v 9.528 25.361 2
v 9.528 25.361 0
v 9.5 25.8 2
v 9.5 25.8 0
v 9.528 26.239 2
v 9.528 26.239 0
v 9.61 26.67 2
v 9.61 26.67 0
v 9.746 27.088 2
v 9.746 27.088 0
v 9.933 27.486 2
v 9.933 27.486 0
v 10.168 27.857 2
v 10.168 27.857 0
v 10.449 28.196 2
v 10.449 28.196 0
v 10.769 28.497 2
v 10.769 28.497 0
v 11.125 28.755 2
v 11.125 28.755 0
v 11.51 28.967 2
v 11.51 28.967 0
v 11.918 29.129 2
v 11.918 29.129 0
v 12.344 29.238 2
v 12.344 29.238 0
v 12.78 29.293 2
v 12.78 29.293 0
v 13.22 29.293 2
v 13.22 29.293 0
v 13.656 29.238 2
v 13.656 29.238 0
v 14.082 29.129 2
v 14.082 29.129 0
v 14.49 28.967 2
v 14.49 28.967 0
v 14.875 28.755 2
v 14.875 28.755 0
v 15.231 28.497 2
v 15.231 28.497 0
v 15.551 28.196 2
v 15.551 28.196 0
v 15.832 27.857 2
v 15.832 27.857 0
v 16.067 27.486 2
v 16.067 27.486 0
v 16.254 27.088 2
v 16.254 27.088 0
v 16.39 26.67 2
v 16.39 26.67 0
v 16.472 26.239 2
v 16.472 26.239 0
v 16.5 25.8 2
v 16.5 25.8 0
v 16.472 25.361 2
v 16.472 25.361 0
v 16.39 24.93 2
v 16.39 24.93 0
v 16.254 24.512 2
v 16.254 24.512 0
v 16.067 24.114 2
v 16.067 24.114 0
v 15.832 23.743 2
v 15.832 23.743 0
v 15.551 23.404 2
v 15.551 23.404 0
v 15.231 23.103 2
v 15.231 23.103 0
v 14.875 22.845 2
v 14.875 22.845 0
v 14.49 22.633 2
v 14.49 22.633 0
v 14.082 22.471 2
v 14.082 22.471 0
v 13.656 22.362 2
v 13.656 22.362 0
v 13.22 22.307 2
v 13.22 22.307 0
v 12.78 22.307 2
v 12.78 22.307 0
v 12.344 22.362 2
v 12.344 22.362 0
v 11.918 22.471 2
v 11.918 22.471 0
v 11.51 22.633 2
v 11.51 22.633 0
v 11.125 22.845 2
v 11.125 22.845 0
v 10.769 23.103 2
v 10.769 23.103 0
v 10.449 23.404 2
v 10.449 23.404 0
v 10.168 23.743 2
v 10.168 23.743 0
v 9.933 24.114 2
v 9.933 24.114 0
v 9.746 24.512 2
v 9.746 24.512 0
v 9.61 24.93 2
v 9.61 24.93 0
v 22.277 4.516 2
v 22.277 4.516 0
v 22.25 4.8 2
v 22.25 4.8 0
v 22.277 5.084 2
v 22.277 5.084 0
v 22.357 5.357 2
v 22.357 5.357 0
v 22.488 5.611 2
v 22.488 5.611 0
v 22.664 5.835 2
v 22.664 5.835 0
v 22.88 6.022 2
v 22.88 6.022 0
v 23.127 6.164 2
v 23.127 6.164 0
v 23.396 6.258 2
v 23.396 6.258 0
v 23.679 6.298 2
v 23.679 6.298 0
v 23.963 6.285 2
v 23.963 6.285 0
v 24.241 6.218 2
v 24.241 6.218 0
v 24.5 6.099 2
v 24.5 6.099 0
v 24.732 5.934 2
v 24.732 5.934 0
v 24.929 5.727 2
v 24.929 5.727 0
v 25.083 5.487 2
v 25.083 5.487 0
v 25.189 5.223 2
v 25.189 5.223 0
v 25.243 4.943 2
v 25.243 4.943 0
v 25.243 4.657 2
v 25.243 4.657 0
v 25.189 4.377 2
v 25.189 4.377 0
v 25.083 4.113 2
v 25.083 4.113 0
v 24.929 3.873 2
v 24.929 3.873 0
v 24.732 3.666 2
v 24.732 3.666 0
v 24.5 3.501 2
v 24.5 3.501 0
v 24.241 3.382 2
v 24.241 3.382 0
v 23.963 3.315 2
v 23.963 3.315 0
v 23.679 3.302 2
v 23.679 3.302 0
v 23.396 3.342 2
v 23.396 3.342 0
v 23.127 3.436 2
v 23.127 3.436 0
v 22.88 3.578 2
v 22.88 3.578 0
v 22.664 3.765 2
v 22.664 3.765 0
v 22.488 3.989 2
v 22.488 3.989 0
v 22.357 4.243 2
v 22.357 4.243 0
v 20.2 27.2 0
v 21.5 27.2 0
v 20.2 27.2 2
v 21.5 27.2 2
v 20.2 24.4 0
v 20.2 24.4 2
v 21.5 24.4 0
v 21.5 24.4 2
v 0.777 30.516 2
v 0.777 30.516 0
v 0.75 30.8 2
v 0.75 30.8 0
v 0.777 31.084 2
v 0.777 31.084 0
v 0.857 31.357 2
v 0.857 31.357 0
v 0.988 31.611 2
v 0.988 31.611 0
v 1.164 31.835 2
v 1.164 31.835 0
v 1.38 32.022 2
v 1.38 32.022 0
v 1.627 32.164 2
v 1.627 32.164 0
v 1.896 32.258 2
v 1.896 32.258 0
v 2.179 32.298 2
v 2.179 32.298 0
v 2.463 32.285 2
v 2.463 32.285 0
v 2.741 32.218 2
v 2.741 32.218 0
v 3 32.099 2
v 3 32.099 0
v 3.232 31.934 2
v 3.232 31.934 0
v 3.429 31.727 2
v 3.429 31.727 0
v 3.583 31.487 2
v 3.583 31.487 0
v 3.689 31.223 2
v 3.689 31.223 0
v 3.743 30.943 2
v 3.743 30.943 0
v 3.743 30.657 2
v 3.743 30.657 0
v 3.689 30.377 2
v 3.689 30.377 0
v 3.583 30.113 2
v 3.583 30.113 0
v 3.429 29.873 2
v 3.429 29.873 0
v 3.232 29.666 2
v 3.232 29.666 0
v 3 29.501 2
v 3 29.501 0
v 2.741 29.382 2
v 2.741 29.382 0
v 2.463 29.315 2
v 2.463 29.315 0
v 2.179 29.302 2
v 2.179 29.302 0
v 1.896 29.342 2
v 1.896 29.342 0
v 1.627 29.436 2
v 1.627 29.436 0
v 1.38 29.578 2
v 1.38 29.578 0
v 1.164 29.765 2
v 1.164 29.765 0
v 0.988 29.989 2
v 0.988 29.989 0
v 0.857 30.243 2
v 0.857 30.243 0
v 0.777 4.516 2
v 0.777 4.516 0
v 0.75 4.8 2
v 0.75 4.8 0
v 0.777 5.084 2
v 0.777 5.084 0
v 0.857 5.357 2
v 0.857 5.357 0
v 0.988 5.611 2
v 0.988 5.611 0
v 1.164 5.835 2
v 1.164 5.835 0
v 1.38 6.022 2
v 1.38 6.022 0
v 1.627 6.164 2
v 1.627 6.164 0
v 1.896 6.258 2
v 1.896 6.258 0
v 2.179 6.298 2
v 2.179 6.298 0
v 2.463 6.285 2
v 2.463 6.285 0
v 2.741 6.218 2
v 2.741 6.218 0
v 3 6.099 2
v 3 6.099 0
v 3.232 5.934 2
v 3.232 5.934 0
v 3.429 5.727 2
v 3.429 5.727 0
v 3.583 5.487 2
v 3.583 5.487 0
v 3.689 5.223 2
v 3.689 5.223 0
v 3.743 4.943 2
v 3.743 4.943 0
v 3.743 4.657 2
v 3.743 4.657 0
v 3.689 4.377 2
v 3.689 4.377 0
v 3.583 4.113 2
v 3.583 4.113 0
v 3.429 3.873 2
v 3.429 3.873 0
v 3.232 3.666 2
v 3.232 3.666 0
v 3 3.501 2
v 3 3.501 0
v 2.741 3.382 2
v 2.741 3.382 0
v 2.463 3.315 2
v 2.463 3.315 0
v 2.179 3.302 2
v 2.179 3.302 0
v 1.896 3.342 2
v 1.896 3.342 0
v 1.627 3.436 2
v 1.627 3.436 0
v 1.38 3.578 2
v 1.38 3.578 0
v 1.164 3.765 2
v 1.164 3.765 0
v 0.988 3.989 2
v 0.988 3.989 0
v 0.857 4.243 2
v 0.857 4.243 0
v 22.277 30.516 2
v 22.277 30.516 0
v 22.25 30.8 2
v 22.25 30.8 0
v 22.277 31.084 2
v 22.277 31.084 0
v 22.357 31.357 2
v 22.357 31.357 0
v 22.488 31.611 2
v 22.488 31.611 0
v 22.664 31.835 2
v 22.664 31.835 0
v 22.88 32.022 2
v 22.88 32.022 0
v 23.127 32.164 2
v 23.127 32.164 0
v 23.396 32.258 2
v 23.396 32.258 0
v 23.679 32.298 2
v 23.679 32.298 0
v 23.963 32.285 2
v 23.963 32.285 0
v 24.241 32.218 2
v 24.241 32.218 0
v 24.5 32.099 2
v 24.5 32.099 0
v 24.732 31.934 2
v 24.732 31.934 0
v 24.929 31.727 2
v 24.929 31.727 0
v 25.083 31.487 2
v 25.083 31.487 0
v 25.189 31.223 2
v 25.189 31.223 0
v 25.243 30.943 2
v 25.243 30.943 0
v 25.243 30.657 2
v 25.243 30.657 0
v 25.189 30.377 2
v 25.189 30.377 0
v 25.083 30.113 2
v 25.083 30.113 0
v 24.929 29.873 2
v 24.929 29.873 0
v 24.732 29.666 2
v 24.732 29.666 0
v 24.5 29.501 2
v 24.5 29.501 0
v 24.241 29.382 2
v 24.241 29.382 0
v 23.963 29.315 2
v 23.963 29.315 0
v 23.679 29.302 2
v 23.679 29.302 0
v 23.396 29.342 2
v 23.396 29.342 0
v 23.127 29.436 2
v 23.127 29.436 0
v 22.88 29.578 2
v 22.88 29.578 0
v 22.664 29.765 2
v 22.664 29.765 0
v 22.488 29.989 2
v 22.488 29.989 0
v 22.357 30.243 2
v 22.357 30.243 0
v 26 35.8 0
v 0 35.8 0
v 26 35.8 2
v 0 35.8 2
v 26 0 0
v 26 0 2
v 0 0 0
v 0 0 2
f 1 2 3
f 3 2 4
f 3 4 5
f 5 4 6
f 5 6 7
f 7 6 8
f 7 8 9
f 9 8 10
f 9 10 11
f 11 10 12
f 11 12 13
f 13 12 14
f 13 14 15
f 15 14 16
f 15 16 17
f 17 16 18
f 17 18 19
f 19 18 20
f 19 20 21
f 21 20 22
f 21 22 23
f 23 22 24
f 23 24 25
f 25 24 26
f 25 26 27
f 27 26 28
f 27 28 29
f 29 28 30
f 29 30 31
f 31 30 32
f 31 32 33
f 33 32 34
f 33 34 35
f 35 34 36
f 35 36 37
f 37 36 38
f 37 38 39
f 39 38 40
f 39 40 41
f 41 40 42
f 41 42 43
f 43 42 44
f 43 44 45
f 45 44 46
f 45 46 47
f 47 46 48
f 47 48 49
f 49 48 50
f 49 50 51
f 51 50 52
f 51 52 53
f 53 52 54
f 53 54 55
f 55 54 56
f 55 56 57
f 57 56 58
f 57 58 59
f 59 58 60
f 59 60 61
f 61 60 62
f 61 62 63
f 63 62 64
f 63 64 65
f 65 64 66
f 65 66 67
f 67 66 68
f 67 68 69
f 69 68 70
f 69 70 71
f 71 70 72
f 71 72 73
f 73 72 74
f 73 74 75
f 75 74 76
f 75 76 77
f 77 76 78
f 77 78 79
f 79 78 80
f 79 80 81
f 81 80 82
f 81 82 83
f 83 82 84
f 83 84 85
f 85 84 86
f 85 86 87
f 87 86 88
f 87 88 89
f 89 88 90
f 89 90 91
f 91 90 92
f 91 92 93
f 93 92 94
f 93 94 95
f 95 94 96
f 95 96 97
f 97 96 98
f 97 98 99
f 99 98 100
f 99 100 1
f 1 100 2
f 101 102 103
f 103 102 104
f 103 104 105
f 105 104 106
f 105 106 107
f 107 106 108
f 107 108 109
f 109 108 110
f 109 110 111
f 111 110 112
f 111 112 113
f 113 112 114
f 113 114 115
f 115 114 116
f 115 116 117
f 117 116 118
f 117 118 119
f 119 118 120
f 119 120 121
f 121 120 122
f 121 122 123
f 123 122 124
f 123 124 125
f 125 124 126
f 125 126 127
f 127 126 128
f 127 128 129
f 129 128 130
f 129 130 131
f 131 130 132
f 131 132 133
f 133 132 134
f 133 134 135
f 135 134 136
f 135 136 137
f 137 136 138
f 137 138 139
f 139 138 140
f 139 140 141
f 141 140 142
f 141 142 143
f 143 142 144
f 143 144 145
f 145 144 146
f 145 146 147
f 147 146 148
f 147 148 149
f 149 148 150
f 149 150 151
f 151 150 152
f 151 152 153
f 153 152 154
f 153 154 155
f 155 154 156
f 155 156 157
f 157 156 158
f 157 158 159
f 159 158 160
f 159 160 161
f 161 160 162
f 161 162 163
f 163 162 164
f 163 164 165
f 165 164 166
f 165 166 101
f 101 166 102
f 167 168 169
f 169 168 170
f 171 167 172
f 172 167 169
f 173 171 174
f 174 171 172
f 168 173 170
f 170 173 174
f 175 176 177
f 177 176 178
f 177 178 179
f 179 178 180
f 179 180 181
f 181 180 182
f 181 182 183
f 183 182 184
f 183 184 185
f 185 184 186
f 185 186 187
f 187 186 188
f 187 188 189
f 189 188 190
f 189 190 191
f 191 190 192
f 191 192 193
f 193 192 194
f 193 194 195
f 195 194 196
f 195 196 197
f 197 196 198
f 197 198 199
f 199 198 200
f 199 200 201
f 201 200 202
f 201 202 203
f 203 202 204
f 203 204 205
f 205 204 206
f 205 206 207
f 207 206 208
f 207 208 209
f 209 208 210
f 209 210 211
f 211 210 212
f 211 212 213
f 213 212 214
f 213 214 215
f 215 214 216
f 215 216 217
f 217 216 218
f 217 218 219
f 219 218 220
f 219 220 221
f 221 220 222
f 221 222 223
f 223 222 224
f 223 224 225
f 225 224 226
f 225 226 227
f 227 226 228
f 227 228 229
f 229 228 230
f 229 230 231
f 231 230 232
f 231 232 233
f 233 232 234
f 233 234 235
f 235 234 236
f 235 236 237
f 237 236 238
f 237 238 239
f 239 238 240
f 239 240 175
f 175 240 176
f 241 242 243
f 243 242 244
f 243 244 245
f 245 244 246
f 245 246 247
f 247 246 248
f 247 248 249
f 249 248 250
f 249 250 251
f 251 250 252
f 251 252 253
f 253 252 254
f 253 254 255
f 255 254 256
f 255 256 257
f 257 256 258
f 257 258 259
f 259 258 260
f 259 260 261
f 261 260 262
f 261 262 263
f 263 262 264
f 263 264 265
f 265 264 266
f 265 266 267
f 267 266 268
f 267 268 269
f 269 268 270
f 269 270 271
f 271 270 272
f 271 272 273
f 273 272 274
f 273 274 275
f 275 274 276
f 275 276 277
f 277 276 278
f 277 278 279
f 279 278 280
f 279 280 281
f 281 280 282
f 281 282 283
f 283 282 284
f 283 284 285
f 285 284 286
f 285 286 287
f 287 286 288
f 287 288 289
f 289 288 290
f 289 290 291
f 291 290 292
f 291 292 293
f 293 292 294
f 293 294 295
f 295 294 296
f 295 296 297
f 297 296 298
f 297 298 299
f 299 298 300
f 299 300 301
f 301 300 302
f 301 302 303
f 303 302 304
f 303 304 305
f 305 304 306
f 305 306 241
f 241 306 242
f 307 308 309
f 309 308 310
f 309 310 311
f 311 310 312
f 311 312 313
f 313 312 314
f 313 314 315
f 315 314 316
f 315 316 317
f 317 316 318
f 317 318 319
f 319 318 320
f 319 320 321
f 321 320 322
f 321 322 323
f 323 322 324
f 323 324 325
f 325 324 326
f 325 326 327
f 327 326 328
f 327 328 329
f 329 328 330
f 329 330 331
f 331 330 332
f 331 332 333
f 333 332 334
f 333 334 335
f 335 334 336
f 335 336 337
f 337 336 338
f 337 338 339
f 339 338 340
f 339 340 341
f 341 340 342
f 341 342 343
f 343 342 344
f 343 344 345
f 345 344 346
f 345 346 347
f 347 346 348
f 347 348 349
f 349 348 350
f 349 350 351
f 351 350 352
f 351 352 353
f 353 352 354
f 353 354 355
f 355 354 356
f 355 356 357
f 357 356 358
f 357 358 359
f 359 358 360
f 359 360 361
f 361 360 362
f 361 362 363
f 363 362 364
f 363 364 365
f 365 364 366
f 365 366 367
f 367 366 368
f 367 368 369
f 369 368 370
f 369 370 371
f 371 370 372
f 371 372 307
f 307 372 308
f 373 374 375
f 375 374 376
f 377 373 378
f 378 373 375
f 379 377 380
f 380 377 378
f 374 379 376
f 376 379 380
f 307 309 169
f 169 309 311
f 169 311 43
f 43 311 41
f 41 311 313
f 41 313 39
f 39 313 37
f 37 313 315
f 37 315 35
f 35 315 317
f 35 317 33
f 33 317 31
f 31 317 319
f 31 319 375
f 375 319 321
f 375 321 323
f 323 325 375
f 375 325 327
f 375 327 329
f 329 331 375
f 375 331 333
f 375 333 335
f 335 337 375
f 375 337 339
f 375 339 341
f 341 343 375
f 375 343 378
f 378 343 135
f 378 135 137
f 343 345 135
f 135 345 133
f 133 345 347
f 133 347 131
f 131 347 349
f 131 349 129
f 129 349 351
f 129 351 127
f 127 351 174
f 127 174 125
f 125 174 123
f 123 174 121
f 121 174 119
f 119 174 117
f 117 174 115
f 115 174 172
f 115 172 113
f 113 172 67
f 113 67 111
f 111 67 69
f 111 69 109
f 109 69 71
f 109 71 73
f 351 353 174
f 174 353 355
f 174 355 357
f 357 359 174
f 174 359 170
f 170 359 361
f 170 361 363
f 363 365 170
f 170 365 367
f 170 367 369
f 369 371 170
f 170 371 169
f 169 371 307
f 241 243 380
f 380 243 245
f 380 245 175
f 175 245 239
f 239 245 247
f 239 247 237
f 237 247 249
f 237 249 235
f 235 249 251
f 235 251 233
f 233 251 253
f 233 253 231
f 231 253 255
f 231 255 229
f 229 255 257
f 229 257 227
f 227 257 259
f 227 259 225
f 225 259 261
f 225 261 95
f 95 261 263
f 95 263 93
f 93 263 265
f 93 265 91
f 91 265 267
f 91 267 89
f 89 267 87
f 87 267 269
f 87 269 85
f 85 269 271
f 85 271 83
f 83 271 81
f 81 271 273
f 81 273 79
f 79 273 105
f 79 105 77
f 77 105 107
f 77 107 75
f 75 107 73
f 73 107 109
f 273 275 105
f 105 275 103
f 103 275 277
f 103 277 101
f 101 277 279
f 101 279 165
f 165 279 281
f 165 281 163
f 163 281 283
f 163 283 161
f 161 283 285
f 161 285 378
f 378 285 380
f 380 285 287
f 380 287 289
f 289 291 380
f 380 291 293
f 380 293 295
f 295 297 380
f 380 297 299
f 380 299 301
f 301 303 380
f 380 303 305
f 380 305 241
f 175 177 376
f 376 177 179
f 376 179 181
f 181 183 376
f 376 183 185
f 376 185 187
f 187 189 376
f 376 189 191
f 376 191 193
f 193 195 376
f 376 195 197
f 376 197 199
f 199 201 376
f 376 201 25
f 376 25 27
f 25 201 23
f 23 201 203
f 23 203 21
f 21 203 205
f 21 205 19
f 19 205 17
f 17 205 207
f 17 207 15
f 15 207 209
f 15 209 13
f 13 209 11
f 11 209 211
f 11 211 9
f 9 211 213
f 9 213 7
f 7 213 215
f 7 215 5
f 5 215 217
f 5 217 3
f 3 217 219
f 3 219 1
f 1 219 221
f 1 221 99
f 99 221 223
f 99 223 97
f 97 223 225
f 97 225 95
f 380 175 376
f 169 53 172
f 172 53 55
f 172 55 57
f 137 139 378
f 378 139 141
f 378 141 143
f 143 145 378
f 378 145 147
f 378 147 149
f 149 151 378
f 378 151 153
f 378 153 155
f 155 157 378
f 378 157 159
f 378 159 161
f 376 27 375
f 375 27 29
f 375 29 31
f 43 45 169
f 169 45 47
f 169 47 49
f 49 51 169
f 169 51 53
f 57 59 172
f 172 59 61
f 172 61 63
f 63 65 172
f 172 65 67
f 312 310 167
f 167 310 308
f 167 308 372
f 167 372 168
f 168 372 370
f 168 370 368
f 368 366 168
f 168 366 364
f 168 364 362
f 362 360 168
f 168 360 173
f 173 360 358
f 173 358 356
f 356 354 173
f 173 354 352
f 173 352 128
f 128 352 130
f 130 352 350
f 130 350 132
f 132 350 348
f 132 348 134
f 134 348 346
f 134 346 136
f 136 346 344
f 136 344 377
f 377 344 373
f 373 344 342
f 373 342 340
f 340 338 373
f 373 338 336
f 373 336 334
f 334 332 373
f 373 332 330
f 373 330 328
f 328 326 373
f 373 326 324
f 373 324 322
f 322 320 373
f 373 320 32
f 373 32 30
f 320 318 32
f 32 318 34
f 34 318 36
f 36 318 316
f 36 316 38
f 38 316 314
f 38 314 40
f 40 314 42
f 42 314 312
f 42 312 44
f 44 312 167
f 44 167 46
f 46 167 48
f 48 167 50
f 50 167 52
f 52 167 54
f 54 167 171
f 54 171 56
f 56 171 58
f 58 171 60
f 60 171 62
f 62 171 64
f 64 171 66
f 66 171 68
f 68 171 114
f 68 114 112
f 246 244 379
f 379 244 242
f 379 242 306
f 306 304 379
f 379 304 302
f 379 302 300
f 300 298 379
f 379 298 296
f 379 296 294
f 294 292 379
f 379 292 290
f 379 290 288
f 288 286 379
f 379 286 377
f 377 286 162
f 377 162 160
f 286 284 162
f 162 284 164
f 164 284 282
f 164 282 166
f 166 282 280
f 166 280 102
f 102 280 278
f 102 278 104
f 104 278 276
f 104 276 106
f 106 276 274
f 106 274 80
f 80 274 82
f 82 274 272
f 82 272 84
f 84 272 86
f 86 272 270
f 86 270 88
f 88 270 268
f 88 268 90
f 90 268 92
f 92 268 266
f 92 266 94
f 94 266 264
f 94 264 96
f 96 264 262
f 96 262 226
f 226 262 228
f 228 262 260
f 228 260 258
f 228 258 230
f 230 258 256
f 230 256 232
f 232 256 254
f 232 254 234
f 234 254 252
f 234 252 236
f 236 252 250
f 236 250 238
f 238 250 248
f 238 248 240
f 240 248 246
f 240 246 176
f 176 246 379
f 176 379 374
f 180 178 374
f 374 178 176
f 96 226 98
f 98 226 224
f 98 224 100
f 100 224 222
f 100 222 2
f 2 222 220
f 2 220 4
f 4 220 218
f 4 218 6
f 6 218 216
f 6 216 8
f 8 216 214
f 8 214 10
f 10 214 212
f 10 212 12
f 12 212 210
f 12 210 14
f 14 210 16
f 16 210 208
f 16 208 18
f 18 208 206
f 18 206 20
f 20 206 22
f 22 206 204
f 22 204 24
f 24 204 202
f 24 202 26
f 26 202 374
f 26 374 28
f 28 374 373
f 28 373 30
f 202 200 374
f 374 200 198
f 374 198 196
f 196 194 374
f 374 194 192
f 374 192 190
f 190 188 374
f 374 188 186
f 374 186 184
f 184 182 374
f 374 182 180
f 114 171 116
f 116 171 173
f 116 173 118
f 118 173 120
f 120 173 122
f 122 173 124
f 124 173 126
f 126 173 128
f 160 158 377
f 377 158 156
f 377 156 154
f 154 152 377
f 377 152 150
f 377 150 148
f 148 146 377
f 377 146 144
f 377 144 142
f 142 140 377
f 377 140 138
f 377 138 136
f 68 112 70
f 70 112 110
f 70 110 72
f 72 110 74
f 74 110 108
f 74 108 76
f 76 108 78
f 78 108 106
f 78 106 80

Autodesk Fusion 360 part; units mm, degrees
sketch "Sketch1" plane through (0, 0, 0) normal (0, 0, 1) x (1, 0, 0)
  line L0 (0, 0) -> (26, 0)
  line L1 (26, 0) -> (26, 35.8)
  line L2 (26, 35.8) -> (0, 35.8)
  line L3 (0, 35.8) -> (0, 0)
  circle A0 centre (23.75, 30.8) radius 1.5
  circle A1 centre (2.25, 30.8) radius 1.5
  circle A2 centre (2.25, 4.8) radius 1.5
  circle A3 centre (23.75, 4.8) radius 1.5
  circle A4 centre (13, 25.8) radius 3.5
  line L4 (21.5, 27.2) -> (20.2, 27.2)
  line L5 (20.2, 27.2) -> (20.2, 24.4)
  line L6 (20.2, 24.4) -> (21.5, 24.4)
  line L7 (21.5, 24.4) -> (21.5, 27.2)
  dimension "d1" = 26
  dimension "d2" = 35.8
  dimension "d3" = 3
  dimension "d4" = 3
  dimension "d5" = 3
  dimension "d6" = 3
  dimension "d7" = 5
  dimension "d10" = 31
  dimension "d11" = 31
  dimension "d12" = 5
  dimension "d13" = 2.25
  dimension "d14" = 2.25
  dimension "d15" = 2.25
  dimension "d16" = 2.25
  dimension "d17" = 7
  dimension "d18" = 10
  dimension "d21" = 1.3
  dimension "d22" = 2.8
  dimension "d23" = 13
  dimension "d24" = 7.2
  dimension "d25" = 8.6
extrude "Extrude1" add sketch "Sketch1" along normal blind 2
